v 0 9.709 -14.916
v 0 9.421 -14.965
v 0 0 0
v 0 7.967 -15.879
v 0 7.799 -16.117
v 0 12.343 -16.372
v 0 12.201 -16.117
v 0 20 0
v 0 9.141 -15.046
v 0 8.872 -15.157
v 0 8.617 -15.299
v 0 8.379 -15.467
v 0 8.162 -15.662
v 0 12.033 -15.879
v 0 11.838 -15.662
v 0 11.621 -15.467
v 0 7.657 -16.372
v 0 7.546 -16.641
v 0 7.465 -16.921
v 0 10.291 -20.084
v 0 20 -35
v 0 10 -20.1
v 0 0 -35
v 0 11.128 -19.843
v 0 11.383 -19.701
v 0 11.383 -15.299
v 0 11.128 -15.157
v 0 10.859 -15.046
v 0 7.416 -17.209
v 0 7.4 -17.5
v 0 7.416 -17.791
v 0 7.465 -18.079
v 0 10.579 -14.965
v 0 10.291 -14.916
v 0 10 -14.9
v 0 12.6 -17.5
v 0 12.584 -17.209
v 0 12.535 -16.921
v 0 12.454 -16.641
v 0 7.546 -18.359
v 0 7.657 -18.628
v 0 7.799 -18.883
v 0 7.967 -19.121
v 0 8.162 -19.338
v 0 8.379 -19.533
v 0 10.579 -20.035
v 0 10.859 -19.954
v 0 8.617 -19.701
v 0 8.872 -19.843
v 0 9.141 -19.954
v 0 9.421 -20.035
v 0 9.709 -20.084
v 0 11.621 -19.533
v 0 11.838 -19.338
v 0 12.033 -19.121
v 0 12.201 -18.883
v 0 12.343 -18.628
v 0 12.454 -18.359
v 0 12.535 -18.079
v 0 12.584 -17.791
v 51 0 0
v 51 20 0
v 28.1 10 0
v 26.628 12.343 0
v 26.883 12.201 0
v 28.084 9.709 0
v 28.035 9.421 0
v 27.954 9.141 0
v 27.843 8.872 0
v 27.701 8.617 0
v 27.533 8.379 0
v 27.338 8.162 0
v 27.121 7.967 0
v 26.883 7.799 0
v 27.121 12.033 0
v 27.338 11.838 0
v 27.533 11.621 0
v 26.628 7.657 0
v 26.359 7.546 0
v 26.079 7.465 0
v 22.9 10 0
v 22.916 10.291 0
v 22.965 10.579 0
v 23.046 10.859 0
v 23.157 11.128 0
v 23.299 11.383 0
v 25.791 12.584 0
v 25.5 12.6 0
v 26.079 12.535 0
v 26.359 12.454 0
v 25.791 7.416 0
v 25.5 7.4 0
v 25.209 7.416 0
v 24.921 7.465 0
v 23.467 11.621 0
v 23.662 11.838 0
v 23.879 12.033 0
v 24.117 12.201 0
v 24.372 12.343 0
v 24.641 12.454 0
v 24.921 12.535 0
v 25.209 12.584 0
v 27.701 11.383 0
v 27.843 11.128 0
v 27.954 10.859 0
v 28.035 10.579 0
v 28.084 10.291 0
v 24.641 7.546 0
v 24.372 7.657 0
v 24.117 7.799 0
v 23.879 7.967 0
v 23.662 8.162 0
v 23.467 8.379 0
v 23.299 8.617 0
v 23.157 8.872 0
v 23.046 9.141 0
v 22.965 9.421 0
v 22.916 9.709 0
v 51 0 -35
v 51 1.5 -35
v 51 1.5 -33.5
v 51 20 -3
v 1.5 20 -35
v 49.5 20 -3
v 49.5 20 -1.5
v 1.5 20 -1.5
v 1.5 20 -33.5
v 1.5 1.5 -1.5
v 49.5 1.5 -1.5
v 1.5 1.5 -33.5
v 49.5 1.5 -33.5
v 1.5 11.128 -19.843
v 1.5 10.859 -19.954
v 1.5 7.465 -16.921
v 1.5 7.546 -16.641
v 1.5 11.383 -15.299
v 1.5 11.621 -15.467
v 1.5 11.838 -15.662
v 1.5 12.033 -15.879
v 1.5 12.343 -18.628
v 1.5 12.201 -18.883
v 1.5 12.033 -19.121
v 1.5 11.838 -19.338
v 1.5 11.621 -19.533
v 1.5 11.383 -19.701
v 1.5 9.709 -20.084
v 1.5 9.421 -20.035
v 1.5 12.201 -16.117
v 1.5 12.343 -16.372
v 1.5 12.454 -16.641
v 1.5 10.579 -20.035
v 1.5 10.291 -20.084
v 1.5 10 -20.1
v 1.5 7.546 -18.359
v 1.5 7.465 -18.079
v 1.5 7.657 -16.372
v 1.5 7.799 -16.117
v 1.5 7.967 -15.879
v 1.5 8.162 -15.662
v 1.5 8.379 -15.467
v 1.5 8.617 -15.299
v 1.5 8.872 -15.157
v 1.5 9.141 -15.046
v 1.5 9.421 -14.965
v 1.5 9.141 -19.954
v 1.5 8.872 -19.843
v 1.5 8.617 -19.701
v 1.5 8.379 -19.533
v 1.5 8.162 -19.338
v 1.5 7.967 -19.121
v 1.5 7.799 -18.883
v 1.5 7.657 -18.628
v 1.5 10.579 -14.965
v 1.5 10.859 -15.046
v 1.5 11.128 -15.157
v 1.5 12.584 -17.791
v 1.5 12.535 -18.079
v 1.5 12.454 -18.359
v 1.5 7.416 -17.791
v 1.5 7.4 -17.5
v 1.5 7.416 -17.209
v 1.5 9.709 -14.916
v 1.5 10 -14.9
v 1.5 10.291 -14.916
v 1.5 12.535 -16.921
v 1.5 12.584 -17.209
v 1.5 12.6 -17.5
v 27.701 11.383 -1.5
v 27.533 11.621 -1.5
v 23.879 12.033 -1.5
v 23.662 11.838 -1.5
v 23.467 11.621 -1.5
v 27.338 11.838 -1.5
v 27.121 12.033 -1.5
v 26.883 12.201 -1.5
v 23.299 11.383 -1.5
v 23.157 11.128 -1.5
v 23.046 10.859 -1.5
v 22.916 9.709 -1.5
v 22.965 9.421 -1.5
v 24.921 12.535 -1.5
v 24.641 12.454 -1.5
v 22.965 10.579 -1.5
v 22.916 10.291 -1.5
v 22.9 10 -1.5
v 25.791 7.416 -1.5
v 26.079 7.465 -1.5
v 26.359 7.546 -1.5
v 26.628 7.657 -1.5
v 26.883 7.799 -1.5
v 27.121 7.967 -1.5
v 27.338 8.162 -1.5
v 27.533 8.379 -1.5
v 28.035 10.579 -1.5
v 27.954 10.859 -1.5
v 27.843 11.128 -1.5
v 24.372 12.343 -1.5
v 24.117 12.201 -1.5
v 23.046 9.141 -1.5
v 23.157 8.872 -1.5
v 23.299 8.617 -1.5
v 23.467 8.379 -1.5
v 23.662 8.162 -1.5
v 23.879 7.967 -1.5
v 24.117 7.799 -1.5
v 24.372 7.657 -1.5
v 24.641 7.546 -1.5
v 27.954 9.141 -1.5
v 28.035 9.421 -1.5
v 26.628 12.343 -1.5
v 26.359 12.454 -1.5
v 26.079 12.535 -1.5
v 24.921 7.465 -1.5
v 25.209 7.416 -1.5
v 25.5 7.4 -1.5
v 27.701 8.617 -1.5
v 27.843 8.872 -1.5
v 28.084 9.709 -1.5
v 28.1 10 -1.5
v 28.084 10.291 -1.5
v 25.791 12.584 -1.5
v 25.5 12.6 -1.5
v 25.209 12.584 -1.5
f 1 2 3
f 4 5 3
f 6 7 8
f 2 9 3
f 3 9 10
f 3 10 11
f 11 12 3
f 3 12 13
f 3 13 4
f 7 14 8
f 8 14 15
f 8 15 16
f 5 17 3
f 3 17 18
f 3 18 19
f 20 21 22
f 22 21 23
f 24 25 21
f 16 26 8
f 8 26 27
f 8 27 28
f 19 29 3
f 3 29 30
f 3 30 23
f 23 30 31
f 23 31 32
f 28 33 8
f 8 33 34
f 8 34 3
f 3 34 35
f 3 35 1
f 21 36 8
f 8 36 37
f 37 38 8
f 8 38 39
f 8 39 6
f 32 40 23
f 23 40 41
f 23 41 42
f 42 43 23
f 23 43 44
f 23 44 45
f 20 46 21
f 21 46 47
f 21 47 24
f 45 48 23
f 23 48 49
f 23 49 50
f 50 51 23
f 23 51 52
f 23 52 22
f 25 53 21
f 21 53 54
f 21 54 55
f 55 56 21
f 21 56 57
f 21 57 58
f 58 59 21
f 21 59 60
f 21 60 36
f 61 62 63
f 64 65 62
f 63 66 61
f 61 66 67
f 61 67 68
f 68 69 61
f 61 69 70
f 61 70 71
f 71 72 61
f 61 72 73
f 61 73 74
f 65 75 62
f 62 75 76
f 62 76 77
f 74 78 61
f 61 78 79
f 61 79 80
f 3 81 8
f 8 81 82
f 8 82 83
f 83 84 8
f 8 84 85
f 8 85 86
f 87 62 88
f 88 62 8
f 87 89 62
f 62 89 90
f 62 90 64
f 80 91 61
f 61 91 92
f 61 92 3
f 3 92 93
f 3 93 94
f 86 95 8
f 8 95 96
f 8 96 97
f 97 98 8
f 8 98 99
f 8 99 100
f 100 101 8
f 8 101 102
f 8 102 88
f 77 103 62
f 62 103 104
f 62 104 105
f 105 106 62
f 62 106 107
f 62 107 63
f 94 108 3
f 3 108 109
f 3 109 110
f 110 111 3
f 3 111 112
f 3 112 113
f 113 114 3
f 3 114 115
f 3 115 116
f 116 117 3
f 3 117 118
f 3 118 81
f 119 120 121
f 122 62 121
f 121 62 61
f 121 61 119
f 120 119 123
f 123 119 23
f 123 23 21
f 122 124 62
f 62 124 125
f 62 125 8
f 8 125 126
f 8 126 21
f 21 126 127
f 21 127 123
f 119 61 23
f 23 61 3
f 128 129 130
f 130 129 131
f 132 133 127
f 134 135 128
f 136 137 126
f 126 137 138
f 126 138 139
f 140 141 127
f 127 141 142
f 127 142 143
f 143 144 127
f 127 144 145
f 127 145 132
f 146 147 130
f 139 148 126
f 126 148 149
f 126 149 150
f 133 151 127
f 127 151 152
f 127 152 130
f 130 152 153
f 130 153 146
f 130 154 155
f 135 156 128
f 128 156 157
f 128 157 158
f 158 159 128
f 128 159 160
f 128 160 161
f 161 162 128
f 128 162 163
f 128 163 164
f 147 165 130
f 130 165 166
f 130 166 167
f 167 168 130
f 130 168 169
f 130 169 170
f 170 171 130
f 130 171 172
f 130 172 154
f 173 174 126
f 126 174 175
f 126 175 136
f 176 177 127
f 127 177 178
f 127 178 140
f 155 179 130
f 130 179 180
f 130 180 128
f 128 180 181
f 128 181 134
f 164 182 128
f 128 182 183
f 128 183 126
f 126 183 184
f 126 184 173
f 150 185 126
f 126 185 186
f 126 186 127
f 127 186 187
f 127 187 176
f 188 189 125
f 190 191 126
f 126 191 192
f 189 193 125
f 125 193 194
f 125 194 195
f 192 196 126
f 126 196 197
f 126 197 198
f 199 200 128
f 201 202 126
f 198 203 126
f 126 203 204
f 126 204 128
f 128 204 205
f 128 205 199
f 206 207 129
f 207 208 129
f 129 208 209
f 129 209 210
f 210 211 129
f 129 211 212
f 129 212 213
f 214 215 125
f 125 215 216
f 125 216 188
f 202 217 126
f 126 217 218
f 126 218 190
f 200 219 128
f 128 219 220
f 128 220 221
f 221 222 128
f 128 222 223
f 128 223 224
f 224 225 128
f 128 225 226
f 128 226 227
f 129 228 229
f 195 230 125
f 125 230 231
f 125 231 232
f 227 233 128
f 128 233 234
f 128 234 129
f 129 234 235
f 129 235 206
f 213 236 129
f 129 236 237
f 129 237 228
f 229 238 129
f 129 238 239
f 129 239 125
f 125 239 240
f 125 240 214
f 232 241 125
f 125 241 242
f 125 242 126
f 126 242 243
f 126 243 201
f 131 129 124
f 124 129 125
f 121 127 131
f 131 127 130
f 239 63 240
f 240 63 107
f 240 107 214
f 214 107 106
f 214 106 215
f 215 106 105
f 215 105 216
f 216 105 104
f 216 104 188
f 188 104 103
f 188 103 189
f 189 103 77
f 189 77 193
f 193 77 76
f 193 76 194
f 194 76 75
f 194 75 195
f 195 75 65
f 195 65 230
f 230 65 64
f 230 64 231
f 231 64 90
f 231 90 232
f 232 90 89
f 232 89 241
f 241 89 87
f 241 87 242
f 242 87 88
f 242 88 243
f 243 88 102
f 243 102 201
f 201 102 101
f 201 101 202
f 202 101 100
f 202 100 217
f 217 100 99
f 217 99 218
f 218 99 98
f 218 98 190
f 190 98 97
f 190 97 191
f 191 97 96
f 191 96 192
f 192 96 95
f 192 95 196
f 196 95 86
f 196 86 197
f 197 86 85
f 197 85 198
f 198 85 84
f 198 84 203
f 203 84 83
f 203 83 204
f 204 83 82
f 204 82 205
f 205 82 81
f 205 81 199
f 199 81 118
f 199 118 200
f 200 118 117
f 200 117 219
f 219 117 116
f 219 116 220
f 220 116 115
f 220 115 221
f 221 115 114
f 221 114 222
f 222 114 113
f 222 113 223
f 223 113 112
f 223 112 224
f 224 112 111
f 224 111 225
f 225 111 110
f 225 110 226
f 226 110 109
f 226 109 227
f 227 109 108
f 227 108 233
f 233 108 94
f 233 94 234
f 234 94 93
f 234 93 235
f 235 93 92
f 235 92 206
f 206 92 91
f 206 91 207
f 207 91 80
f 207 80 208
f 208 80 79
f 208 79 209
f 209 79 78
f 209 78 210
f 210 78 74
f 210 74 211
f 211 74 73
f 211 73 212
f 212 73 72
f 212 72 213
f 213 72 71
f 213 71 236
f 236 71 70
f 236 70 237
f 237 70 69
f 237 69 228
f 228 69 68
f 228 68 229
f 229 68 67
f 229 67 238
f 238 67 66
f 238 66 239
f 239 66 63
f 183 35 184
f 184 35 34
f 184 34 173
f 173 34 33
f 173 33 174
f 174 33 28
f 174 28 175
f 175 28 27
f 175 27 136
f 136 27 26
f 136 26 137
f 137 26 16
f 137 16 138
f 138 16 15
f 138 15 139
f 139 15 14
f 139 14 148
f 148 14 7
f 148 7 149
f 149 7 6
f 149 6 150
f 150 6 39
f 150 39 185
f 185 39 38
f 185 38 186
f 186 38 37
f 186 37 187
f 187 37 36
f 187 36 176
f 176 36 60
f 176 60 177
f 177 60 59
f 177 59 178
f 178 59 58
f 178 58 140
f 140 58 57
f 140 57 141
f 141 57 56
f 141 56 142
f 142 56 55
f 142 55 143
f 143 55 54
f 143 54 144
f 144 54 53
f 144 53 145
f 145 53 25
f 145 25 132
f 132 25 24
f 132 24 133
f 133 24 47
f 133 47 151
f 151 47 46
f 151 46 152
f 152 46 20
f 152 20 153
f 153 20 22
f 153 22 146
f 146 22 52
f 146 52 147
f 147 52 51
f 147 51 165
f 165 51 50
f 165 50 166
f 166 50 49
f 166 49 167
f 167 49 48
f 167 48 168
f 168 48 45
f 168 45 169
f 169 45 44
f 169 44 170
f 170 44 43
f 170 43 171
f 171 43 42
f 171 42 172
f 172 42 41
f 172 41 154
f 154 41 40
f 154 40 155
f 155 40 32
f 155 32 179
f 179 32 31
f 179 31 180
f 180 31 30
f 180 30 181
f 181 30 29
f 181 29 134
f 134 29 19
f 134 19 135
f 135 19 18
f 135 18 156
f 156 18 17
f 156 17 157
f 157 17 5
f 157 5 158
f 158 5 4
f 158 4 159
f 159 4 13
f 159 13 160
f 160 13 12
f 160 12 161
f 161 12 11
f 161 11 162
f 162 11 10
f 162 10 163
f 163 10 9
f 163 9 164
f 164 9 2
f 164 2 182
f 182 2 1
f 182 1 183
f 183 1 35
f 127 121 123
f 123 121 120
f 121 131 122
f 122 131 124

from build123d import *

# Parameters (mm, degrees)
SKETCH_1_W          = 51
SKETCH_1_H          = 35
EXTRUDE_1_DEPTH     = 20
SKETCH_2_W          = 48
SKETCH_2_H          = 32
CUT_EXTRUDE_1_DEPTH = 18.5
SKETCH_3_R          = 2.6
CUT_EXTRUDE_2_DEPTH = 3
SKETCH_4_R          = 2.6
CUT_EXTRUDE_3_DEPTH = 3
CUT_EXTRUDE_4_DEPTH = 1.5
CUT_EXTRUDE_5_DEPTH = 3


with BuildPart() as part:
    # 草图1 → 凸台-拉伸1 (new body)
    with BuildSketch(Plane(origin=(0, 0, 0), x_dir=(1, 0, 0), z_dir=(0, 1, 0))):
        with Locations((25.5, 17.5)):
            Rectangle(SKETCH_1_W, SKETCH_1_H)
    extrude(amount=EXTRUDE_1_DEPTH)

    # 草图2 → 切除-拉伸1 (cut)
    with BuildSketch(Plane(origin=(0, 20, 0), x_dir=(1, 0, 0), z_dir=(0, 1, 0))):
        with Locations((25.5, 17.5)):
            Rectangle(SKETCH_2_W, SKETCH_2_H)
    extrude(amount=-CUT_EXTRUDE_1_DEPTH, mode=Mode.SUBTRACT)

    # 草图3 → 切除-拉伸2 (cut)
    with BuildSketch(Plane.XY):
        with Locations((25.5, 10)):
            Circle(SKETCH_3_R)
    extrude(amount=-CUT_EXTRUDE_2_DEPTH, mode=Mode.SUBTRACT)

    # 草图4 → 切除-拉伸3 (cut)
    with BuildSketch(Plane.ZY):
        with Locations((-17.5, 10)):
            Circle(SKETCH_4_R)
    extrude(amount=-CUT_EXTRUDE_3_DEPTH, mode=Mode.SUBTRACT)

    # 草图5 → 切除-拉伸4 (cut)
    with BuildSketch(Plane(origin=(0, 0, -35), x_dir=(-1, 0, 0), z_dir=(0, 0, -1))):
        Polygon((-51, 20), (-1.5, 20), (-51, 1.5), align=None)
    extrude(amount=-CUT_EXTRUDE_4_DEPTH, mode=Mode.SUBTRACT)

    # 草图6 → 切除-拉伸5 (cut)
    with BuildSketch(Plane(origin=(51, 0, 0), x_dir=(0, 0, -1), z_dir=(1, 0, 0))):
        Polygon((33.5, 20), (33.5, 1.5), (3, 20), align=None)
    extrude(amount=-CUT_EXTRUDE_5_DEPTH, mode=Mode.SUBTRACT)


solid = part.part
